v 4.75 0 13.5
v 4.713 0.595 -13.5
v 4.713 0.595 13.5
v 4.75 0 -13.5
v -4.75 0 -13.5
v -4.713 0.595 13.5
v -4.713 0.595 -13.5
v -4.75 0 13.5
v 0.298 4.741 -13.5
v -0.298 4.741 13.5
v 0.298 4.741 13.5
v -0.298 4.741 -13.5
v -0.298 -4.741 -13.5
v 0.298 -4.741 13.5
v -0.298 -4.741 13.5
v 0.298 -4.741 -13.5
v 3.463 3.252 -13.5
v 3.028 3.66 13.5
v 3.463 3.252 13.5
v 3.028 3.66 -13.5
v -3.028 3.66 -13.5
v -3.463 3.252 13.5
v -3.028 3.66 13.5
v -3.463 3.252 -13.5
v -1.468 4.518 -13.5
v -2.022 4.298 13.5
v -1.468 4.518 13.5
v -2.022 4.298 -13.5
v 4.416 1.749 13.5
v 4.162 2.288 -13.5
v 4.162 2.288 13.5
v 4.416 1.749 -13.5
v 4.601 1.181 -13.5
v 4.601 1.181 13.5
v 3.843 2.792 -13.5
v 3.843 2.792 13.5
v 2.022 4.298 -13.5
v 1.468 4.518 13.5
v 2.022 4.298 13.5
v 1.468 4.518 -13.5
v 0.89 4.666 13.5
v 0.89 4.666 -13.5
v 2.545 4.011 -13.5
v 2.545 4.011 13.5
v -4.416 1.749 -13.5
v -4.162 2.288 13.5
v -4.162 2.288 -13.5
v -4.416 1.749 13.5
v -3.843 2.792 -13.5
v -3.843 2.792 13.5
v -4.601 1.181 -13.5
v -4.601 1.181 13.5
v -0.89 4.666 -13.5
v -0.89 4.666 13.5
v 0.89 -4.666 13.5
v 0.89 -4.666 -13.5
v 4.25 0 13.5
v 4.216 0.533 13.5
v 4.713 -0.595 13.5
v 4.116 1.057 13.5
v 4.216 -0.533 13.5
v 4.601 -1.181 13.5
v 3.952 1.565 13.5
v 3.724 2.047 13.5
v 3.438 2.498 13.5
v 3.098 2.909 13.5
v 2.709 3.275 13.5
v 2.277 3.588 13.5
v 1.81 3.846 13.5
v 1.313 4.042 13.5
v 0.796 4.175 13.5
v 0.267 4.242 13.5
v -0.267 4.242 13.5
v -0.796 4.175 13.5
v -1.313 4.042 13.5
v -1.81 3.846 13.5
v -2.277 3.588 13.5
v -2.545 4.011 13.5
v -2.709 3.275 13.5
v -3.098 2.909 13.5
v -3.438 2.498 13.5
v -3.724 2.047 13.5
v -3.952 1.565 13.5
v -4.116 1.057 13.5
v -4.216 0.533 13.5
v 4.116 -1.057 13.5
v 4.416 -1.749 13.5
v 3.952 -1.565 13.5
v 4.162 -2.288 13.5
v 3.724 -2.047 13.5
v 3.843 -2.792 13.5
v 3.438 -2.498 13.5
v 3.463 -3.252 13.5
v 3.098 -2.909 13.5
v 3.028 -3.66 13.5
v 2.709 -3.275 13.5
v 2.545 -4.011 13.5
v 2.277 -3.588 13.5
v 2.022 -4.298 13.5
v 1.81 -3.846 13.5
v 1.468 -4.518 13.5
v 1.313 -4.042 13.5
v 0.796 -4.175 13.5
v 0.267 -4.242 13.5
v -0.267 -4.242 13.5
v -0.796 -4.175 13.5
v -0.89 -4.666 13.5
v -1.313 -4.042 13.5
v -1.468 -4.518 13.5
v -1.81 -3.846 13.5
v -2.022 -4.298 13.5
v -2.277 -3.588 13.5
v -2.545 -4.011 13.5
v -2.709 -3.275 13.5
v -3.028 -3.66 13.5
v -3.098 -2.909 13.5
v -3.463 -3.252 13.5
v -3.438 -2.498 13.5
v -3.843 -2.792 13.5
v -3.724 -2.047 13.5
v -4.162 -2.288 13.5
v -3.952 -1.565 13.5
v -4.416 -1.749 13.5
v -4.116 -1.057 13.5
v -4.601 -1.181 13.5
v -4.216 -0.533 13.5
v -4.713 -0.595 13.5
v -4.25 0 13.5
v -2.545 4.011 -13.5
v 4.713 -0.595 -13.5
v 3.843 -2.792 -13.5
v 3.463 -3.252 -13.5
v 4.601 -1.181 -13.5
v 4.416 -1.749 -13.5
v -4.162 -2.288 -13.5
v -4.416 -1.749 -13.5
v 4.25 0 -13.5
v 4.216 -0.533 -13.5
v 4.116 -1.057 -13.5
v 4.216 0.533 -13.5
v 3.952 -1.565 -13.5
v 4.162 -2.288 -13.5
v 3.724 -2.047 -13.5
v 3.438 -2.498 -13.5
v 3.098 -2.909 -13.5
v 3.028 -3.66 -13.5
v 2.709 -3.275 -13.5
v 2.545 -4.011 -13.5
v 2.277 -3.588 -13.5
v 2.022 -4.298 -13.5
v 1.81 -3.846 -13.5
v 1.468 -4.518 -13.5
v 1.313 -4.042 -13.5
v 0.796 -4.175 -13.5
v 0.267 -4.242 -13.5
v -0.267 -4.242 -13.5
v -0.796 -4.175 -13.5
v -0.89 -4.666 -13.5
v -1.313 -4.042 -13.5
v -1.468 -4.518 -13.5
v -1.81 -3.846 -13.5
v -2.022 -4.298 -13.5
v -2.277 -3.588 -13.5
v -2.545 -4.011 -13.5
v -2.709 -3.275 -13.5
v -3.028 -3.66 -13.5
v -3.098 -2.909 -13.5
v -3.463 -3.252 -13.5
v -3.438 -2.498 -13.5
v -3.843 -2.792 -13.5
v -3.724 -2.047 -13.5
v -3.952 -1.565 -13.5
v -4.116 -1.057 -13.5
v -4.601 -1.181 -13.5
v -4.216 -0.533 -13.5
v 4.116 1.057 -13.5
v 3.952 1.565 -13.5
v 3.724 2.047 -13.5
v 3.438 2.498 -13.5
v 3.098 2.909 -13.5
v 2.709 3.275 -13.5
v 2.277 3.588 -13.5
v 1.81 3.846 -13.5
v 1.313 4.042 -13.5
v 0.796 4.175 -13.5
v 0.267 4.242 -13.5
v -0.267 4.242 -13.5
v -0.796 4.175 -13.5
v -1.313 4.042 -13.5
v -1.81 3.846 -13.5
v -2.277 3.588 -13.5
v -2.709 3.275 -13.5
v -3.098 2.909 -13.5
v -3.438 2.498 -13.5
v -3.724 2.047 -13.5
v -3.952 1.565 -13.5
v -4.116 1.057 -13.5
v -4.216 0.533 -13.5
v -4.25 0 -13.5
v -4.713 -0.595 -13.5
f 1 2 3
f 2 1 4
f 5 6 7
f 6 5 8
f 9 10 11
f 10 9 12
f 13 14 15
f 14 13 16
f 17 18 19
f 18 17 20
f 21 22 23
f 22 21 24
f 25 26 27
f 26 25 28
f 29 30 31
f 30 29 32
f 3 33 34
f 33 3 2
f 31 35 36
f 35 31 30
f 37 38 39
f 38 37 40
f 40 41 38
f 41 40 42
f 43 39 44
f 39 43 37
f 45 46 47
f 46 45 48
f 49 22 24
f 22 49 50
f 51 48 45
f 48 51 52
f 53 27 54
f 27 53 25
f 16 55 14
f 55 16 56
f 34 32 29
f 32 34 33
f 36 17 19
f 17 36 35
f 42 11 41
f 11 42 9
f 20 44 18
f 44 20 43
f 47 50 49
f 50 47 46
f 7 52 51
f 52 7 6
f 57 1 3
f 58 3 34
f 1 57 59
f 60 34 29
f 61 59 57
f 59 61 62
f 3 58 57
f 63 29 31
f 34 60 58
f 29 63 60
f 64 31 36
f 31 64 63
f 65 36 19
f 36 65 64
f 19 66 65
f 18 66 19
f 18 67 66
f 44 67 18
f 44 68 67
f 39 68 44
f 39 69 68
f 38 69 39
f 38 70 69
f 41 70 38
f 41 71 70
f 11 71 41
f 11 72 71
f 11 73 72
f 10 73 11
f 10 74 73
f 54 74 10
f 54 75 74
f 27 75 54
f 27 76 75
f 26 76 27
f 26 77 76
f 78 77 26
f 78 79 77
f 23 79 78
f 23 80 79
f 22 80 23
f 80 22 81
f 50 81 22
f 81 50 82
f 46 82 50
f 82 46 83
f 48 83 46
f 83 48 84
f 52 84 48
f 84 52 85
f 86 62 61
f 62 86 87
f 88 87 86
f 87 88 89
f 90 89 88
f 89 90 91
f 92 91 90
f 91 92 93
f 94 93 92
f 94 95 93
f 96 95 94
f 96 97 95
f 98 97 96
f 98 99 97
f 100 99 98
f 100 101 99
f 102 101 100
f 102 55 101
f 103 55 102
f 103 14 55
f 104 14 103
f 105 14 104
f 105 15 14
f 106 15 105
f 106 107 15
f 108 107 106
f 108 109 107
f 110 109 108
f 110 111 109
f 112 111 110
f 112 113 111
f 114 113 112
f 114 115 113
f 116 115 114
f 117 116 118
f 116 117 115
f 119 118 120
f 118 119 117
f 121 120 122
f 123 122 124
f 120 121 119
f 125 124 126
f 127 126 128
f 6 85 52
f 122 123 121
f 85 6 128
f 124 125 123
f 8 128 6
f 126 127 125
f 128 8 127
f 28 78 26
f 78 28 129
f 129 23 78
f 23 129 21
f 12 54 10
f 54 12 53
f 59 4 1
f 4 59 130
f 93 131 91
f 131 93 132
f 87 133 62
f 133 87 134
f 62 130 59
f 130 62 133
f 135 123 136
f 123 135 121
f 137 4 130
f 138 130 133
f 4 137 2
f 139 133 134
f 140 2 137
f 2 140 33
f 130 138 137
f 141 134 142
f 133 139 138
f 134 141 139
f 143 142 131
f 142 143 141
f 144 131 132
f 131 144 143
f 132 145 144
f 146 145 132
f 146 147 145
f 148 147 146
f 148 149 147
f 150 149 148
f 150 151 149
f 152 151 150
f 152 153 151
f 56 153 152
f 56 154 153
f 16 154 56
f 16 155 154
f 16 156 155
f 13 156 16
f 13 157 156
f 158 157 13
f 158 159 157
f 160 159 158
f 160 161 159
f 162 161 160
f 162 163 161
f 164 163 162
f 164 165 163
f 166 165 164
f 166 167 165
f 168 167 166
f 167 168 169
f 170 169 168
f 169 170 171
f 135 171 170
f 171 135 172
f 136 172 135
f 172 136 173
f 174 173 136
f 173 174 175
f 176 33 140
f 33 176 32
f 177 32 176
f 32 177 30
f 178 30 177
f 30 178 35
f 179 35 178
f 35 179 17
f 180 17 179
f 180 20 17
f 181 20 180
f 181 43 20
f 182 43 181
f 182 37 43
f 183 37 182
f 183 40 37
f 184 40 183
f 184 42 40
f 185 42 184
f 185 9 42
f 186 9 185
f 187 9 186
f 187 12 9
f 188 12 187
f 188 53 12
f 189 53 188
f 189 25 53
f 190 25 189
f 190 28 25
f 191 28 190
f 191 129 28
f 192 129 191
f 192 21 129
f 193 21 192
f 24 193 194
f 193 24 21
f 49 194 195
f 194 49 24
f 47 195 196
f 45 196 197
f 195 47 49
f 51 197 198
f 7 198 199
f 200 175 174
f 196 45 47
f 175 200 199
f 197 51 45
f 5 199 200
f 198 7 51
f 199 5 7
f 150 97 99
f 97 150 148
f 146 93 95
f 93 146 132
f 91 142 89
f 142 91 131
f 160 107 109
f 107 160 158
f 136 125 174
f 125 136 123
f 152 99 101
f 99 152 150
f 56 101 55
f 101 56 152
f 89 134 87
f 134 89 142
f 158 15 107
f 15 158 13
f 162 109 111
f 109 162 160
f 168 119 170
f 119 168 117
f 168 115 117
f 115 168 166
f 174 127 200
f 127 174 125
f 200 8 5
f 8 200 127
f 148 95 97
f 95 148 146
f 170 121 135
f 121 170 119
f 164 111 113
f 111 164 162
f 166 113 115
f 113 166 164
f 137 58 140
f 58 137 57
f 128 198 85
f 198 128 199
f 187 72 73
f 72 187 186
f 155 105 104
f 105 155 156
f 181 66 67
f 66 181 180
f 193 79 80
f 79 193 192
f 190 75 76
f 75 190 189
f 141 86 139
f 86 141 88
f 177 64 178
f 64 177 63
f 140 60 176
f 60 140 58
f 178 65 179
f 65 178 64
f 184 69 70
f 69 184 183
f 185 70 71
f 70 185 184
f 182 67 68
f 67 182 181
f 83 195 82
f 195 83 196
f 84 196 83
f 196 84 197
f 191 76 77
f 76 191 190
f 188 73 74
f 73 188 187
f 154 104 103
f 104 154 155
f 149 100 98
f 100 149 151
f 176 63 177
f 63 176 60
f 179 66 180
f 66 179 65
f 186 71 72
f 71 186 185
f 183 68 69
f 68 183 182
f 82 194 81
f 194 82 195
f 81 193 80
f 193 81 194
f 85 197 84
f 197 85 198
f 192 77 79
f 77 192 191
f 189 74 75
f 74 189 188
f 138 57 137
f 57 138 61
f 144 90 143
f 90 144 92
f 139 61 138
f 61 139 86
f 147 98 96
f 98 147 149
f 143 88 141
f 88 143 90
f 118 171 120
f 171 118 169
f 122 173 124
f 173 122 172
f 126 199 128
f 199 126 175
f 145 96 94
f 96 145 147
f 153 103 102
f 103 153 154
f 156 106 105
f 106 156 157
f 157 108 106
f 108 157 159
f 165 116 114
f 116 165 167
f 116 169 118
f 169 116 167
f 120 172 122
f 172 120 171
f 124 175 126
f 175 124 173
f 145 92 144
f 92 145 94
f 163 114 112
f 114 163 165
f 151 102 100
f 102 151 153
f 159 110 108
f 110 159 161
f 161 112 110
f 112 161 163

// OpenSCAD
$fn = 50;


difference() {
	union() {
		translate(v = [0, 0, -13.5000000000]) {
			cylinder(h = 27, r = 4.7500000000);
		}
	}
	union() {
		translate(v = [0, 0, -100.0000000000]) {
			cylinder(h = 200, r = 4.2500000000);
		}
	}
}
